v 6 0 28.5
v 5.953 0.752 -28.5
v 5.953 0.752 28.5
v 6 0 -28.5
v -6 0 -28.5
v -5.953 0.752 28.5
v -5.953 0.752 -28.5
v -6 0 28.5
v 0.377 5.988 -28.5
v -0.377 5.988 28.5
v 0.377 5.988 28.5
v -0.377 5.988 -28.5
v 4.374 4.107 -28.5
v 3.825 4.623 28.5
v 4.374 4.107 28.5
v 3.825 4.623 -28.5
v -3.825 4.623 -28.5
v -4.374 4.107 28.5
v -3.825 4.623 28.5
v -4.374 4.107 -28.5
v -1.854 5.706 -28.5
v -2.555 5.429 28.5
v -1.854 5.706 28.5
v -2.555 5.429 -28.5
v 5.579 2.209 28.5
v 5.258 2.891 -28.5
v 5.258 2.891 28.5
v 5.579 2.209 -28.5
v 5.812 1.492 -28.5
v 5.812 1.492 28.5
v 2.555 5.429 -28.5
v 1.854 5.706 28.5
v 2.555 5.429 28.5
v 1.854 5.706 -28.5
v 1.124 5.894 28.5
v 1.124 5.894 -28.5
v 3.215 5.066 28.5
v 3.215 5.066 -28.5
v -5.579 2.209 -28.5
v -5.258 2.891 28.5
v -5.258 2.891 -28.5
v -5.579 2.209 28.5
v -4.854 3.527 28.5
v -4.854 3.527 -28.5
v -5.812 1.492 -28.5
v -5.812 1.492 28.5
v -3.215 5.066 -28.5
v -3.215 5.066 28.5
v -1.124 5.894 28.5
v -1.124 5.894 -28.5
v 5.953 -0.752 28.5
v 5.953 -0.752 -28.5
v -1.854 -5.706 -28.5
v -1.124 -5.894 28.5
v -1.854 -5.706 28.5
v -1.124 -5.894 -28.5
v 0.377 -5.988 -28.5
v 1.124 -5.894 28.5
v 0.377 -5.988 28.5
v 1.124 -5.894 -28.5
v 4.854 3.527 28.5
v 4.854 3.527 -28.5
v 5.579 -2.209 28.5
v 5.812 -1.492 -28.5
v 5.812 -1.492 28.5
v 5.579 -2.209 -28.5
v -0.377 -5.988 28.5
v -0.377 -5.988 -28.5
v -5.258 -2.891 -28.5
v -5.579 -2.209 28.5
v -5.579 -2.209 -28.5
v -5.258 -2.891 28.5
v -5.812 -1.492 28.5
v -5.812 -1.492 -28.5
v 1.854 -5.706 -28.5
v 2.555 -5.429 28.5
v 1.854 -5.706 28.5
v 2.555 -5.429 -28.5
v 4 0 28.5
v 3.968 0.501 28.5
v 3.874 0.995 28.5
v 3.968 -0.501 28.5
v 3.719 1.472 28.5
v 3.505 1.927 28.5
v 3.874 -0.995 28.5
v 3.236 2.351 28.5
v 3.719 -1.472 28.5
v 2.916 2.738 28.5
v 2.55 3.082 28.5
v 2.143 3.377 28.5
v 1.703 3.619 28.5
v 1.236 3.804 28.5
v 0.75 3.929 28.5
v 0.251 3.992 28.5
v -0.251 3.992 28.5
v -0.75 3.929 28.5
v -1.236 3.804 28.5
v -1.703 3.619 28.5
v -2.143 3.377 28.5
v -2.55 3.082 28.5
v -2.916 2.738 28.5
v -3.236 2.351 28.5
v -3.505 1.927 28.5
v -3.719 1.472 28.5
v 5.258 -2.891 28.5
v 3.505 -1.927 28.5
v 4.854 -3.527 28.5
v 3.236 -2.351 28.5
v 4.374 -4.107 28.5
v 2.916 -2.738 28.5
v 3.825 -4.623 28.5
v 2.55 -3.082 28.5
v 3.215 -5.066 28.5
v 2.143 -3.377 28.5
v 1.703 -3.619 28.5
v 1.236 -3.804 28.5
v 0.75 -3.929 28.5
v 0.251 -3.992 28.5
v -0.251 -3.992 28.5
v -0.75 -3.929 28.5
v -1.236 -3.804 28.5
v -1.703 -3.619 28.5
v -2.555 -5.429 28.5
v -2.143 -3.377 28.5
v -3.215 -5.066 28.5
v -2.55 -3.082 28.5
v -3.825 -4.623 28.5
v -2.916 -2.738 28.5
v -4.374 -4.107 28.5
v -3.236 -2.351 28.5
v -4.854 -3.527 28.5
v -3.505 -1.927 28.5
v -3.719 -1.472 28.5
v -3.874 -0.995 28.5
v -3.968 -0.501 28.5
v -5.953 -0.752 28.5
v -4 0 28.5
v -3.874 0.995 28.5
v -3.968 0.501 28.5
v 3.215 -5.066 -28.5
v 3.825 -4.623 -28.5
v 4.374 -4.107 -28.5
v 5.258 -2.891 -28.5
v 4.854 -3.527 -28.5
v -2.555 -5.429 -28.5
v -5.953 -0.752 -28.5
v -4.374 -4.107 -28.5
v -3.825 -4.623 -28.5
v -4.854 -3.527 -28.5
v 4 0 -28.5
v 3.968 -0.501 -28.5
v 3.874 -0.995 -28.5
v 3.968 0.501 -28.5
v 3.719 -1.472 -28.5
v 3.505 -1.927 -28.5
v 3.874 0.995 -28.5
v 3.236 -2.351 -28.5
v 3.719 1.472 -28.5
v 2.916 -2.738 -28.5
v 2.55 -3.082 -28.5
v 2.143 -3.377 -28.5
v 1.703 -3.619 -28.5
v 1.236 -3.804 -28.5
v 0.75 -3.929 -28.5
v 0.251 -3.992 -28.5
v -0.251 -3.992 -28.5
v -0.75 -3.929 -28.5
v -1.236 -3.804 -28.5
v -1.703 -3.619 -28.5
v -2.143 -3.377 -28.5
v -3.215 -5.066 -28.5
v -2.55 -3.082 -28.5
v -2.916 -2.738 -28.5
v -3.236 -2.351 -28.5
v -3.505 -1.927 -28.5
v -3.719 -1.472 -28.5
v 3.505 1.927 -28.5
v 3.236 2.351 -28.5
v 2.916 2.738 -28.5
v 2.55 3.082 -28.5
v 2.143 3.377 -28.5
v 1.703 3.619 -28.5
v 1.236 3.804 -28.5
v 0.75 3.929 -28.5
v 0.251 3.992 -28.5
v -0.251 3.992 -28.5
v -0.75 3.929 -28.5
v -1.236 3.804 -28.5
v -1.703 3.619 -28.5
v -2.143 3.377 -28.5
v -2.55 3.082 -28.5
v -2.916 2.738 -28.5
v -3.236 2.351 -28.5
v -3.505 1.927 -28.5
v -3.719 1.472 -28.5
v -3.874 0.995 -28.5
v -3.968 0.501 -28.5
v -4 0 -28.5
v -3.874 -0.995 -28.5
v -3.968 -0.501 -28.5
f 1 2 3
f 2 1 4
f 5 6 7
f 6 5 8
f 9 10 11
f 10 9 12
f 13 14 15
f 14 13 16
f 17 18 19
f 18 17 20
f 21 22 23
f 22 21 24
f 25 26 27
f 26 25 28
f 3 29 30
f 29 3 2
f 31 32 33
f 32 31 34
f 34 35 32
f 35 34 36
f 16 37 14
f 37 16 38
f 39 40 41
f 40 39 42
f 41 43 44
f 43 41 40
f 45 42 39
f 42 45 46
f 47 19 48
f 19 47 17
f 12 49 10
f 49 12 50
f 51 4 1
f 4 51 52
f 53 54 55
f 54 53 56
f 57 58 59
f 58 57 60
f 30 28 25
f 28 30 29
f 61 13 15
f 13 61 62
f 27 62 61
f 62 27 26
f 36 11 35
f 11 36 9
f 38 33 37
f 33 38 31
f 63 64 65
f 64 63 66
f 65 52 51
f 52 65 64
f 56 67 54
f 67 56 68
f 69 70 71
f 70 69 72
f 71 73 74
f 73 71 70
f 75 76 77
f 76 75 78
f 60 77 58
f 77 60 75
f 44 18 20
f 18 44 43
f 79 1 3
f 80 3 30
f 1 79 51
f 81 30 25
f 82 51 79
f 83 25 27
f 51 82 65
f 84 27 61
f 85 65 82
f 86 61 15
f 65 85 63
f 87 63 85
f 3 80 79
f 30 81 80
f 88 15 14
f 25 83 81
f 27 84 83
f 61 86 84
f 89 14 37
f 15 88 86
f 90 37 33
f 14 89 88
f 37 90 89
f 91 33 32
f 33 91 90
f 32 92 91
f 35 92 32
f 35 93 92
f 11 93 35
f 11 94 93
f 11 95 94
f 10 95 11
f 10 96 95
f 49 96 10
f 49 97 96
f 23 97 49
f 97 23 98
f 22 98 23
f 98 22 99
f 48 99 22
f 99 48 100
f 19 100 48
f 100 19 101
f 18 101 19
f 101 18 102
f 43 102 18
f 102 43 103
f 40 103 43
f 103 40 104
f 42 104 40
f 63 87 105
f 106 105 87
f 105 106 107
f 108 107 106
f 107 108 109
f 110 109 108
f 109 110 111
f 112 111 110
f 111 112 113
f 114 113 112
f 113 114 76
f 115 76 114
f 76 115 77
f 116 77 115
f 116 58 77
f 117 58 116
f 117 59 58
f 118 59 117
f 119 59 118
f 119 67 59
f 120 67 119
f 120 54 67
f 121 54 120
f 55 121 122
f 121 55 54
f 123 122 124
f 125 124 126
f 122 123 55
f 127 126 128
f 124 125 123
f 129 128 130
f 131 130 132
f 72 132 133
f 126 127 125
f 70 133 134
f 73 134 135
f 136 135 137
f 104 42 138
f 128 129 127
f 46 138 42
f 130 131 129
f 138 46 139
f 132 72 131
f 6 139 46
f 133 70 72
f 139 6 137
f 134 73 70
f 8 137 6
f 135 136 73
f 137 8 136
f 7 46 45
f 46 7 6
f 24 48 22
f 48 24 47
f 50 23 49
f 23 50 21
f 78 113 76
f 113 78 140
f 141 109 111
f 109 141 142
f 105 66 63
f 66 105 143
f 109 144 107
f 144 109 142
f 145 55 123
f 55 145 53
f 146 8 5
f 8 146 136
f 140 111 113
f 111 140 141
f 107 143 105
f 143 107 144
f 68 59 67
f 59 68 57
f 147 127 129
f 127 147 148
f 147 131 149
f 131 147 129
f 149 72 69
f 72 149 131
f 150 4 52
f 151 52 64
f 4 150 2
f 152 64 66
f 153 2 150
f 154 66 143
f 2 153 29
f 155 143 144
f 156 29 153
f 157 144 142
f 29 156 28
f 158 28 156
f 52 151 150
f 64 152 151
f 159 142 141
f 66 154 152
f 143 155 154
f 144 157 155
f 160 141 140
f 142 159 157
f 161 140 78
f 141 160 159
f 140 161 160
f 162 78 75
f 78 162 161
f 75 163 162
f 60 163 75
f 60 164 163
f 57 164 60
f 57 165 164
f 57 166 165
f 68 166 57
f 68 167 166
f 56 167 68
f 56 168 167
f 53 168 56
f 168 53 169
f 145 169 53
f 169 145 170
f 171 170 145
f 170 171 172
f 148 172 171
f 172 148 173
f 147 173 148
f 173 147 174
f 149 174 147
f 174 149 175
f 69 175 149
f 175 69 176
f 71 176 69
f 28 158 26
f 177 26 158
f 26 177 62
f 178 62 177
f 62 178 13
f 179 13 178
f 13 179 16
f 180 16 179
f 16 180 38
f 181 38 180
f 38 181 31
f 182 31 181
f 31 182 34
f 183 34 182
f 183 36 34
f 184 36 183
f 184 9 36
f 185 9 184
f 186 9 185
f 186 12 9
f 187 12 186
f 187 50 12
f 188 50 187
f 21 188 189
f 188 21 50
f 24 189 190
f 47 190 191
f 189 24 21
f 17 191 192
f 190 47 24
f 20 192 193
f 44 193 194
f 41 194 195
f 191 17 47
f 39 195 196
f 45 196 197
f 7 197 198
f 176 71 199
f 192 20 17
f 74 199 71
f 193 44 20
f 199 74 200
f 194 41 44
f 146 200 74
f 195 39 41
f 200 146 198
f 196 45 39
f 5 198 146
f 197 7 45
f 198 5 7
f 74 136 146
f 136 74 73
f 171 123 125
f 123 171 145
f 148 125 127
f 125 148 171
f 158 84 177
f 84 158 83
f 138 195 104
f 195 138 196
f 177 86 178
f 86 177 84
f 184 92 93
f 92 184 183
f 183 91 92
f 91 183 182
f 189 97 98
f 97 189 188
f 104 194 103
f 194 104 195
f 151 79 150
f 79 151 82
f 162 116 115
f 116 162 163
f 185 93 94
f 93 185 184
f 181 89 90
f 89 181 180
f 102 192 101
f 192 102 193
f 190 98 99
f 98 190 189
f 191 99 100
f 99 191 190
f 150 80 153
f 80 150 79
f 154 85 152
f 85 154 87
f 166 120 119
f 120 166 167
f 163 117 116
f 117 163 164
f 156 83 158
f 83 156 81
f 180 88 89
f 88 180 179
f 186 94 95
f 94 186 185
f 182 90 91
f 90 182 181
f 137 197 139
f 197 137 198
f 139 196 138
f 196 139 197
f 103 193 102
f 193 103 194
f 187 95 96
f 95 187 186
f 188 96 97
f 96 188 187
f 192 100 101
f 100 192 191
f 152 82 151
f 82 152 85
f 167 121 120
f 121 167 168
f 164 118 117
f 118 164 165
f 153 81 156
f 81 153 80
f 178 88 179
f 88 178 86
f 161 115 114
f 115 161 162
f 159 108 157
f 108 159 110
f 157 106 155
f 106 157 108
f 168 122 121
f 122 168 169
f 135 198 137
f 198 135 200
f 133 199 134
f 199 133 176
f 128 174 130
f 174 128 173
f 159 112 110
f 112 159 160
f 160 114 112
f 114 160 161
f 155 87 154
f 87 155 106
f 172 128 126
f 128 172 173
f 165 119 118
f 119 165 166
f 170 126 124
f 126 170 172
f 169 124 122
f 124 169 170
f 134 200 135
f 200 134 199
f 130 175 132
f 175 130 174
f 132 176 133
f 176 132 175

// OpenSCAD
$fn = 50;


difference() {
	union() {
		translate(v = [0, 0, -28.5000000000]) {
			cylinder(h = 57, r = 6.0000000000);
		}
	}
	union() {
		translate(v = [0, 0, -100.0000000000]) {
			cylinder(h = 200, r = 4.0000000000);
		}
	}
}
